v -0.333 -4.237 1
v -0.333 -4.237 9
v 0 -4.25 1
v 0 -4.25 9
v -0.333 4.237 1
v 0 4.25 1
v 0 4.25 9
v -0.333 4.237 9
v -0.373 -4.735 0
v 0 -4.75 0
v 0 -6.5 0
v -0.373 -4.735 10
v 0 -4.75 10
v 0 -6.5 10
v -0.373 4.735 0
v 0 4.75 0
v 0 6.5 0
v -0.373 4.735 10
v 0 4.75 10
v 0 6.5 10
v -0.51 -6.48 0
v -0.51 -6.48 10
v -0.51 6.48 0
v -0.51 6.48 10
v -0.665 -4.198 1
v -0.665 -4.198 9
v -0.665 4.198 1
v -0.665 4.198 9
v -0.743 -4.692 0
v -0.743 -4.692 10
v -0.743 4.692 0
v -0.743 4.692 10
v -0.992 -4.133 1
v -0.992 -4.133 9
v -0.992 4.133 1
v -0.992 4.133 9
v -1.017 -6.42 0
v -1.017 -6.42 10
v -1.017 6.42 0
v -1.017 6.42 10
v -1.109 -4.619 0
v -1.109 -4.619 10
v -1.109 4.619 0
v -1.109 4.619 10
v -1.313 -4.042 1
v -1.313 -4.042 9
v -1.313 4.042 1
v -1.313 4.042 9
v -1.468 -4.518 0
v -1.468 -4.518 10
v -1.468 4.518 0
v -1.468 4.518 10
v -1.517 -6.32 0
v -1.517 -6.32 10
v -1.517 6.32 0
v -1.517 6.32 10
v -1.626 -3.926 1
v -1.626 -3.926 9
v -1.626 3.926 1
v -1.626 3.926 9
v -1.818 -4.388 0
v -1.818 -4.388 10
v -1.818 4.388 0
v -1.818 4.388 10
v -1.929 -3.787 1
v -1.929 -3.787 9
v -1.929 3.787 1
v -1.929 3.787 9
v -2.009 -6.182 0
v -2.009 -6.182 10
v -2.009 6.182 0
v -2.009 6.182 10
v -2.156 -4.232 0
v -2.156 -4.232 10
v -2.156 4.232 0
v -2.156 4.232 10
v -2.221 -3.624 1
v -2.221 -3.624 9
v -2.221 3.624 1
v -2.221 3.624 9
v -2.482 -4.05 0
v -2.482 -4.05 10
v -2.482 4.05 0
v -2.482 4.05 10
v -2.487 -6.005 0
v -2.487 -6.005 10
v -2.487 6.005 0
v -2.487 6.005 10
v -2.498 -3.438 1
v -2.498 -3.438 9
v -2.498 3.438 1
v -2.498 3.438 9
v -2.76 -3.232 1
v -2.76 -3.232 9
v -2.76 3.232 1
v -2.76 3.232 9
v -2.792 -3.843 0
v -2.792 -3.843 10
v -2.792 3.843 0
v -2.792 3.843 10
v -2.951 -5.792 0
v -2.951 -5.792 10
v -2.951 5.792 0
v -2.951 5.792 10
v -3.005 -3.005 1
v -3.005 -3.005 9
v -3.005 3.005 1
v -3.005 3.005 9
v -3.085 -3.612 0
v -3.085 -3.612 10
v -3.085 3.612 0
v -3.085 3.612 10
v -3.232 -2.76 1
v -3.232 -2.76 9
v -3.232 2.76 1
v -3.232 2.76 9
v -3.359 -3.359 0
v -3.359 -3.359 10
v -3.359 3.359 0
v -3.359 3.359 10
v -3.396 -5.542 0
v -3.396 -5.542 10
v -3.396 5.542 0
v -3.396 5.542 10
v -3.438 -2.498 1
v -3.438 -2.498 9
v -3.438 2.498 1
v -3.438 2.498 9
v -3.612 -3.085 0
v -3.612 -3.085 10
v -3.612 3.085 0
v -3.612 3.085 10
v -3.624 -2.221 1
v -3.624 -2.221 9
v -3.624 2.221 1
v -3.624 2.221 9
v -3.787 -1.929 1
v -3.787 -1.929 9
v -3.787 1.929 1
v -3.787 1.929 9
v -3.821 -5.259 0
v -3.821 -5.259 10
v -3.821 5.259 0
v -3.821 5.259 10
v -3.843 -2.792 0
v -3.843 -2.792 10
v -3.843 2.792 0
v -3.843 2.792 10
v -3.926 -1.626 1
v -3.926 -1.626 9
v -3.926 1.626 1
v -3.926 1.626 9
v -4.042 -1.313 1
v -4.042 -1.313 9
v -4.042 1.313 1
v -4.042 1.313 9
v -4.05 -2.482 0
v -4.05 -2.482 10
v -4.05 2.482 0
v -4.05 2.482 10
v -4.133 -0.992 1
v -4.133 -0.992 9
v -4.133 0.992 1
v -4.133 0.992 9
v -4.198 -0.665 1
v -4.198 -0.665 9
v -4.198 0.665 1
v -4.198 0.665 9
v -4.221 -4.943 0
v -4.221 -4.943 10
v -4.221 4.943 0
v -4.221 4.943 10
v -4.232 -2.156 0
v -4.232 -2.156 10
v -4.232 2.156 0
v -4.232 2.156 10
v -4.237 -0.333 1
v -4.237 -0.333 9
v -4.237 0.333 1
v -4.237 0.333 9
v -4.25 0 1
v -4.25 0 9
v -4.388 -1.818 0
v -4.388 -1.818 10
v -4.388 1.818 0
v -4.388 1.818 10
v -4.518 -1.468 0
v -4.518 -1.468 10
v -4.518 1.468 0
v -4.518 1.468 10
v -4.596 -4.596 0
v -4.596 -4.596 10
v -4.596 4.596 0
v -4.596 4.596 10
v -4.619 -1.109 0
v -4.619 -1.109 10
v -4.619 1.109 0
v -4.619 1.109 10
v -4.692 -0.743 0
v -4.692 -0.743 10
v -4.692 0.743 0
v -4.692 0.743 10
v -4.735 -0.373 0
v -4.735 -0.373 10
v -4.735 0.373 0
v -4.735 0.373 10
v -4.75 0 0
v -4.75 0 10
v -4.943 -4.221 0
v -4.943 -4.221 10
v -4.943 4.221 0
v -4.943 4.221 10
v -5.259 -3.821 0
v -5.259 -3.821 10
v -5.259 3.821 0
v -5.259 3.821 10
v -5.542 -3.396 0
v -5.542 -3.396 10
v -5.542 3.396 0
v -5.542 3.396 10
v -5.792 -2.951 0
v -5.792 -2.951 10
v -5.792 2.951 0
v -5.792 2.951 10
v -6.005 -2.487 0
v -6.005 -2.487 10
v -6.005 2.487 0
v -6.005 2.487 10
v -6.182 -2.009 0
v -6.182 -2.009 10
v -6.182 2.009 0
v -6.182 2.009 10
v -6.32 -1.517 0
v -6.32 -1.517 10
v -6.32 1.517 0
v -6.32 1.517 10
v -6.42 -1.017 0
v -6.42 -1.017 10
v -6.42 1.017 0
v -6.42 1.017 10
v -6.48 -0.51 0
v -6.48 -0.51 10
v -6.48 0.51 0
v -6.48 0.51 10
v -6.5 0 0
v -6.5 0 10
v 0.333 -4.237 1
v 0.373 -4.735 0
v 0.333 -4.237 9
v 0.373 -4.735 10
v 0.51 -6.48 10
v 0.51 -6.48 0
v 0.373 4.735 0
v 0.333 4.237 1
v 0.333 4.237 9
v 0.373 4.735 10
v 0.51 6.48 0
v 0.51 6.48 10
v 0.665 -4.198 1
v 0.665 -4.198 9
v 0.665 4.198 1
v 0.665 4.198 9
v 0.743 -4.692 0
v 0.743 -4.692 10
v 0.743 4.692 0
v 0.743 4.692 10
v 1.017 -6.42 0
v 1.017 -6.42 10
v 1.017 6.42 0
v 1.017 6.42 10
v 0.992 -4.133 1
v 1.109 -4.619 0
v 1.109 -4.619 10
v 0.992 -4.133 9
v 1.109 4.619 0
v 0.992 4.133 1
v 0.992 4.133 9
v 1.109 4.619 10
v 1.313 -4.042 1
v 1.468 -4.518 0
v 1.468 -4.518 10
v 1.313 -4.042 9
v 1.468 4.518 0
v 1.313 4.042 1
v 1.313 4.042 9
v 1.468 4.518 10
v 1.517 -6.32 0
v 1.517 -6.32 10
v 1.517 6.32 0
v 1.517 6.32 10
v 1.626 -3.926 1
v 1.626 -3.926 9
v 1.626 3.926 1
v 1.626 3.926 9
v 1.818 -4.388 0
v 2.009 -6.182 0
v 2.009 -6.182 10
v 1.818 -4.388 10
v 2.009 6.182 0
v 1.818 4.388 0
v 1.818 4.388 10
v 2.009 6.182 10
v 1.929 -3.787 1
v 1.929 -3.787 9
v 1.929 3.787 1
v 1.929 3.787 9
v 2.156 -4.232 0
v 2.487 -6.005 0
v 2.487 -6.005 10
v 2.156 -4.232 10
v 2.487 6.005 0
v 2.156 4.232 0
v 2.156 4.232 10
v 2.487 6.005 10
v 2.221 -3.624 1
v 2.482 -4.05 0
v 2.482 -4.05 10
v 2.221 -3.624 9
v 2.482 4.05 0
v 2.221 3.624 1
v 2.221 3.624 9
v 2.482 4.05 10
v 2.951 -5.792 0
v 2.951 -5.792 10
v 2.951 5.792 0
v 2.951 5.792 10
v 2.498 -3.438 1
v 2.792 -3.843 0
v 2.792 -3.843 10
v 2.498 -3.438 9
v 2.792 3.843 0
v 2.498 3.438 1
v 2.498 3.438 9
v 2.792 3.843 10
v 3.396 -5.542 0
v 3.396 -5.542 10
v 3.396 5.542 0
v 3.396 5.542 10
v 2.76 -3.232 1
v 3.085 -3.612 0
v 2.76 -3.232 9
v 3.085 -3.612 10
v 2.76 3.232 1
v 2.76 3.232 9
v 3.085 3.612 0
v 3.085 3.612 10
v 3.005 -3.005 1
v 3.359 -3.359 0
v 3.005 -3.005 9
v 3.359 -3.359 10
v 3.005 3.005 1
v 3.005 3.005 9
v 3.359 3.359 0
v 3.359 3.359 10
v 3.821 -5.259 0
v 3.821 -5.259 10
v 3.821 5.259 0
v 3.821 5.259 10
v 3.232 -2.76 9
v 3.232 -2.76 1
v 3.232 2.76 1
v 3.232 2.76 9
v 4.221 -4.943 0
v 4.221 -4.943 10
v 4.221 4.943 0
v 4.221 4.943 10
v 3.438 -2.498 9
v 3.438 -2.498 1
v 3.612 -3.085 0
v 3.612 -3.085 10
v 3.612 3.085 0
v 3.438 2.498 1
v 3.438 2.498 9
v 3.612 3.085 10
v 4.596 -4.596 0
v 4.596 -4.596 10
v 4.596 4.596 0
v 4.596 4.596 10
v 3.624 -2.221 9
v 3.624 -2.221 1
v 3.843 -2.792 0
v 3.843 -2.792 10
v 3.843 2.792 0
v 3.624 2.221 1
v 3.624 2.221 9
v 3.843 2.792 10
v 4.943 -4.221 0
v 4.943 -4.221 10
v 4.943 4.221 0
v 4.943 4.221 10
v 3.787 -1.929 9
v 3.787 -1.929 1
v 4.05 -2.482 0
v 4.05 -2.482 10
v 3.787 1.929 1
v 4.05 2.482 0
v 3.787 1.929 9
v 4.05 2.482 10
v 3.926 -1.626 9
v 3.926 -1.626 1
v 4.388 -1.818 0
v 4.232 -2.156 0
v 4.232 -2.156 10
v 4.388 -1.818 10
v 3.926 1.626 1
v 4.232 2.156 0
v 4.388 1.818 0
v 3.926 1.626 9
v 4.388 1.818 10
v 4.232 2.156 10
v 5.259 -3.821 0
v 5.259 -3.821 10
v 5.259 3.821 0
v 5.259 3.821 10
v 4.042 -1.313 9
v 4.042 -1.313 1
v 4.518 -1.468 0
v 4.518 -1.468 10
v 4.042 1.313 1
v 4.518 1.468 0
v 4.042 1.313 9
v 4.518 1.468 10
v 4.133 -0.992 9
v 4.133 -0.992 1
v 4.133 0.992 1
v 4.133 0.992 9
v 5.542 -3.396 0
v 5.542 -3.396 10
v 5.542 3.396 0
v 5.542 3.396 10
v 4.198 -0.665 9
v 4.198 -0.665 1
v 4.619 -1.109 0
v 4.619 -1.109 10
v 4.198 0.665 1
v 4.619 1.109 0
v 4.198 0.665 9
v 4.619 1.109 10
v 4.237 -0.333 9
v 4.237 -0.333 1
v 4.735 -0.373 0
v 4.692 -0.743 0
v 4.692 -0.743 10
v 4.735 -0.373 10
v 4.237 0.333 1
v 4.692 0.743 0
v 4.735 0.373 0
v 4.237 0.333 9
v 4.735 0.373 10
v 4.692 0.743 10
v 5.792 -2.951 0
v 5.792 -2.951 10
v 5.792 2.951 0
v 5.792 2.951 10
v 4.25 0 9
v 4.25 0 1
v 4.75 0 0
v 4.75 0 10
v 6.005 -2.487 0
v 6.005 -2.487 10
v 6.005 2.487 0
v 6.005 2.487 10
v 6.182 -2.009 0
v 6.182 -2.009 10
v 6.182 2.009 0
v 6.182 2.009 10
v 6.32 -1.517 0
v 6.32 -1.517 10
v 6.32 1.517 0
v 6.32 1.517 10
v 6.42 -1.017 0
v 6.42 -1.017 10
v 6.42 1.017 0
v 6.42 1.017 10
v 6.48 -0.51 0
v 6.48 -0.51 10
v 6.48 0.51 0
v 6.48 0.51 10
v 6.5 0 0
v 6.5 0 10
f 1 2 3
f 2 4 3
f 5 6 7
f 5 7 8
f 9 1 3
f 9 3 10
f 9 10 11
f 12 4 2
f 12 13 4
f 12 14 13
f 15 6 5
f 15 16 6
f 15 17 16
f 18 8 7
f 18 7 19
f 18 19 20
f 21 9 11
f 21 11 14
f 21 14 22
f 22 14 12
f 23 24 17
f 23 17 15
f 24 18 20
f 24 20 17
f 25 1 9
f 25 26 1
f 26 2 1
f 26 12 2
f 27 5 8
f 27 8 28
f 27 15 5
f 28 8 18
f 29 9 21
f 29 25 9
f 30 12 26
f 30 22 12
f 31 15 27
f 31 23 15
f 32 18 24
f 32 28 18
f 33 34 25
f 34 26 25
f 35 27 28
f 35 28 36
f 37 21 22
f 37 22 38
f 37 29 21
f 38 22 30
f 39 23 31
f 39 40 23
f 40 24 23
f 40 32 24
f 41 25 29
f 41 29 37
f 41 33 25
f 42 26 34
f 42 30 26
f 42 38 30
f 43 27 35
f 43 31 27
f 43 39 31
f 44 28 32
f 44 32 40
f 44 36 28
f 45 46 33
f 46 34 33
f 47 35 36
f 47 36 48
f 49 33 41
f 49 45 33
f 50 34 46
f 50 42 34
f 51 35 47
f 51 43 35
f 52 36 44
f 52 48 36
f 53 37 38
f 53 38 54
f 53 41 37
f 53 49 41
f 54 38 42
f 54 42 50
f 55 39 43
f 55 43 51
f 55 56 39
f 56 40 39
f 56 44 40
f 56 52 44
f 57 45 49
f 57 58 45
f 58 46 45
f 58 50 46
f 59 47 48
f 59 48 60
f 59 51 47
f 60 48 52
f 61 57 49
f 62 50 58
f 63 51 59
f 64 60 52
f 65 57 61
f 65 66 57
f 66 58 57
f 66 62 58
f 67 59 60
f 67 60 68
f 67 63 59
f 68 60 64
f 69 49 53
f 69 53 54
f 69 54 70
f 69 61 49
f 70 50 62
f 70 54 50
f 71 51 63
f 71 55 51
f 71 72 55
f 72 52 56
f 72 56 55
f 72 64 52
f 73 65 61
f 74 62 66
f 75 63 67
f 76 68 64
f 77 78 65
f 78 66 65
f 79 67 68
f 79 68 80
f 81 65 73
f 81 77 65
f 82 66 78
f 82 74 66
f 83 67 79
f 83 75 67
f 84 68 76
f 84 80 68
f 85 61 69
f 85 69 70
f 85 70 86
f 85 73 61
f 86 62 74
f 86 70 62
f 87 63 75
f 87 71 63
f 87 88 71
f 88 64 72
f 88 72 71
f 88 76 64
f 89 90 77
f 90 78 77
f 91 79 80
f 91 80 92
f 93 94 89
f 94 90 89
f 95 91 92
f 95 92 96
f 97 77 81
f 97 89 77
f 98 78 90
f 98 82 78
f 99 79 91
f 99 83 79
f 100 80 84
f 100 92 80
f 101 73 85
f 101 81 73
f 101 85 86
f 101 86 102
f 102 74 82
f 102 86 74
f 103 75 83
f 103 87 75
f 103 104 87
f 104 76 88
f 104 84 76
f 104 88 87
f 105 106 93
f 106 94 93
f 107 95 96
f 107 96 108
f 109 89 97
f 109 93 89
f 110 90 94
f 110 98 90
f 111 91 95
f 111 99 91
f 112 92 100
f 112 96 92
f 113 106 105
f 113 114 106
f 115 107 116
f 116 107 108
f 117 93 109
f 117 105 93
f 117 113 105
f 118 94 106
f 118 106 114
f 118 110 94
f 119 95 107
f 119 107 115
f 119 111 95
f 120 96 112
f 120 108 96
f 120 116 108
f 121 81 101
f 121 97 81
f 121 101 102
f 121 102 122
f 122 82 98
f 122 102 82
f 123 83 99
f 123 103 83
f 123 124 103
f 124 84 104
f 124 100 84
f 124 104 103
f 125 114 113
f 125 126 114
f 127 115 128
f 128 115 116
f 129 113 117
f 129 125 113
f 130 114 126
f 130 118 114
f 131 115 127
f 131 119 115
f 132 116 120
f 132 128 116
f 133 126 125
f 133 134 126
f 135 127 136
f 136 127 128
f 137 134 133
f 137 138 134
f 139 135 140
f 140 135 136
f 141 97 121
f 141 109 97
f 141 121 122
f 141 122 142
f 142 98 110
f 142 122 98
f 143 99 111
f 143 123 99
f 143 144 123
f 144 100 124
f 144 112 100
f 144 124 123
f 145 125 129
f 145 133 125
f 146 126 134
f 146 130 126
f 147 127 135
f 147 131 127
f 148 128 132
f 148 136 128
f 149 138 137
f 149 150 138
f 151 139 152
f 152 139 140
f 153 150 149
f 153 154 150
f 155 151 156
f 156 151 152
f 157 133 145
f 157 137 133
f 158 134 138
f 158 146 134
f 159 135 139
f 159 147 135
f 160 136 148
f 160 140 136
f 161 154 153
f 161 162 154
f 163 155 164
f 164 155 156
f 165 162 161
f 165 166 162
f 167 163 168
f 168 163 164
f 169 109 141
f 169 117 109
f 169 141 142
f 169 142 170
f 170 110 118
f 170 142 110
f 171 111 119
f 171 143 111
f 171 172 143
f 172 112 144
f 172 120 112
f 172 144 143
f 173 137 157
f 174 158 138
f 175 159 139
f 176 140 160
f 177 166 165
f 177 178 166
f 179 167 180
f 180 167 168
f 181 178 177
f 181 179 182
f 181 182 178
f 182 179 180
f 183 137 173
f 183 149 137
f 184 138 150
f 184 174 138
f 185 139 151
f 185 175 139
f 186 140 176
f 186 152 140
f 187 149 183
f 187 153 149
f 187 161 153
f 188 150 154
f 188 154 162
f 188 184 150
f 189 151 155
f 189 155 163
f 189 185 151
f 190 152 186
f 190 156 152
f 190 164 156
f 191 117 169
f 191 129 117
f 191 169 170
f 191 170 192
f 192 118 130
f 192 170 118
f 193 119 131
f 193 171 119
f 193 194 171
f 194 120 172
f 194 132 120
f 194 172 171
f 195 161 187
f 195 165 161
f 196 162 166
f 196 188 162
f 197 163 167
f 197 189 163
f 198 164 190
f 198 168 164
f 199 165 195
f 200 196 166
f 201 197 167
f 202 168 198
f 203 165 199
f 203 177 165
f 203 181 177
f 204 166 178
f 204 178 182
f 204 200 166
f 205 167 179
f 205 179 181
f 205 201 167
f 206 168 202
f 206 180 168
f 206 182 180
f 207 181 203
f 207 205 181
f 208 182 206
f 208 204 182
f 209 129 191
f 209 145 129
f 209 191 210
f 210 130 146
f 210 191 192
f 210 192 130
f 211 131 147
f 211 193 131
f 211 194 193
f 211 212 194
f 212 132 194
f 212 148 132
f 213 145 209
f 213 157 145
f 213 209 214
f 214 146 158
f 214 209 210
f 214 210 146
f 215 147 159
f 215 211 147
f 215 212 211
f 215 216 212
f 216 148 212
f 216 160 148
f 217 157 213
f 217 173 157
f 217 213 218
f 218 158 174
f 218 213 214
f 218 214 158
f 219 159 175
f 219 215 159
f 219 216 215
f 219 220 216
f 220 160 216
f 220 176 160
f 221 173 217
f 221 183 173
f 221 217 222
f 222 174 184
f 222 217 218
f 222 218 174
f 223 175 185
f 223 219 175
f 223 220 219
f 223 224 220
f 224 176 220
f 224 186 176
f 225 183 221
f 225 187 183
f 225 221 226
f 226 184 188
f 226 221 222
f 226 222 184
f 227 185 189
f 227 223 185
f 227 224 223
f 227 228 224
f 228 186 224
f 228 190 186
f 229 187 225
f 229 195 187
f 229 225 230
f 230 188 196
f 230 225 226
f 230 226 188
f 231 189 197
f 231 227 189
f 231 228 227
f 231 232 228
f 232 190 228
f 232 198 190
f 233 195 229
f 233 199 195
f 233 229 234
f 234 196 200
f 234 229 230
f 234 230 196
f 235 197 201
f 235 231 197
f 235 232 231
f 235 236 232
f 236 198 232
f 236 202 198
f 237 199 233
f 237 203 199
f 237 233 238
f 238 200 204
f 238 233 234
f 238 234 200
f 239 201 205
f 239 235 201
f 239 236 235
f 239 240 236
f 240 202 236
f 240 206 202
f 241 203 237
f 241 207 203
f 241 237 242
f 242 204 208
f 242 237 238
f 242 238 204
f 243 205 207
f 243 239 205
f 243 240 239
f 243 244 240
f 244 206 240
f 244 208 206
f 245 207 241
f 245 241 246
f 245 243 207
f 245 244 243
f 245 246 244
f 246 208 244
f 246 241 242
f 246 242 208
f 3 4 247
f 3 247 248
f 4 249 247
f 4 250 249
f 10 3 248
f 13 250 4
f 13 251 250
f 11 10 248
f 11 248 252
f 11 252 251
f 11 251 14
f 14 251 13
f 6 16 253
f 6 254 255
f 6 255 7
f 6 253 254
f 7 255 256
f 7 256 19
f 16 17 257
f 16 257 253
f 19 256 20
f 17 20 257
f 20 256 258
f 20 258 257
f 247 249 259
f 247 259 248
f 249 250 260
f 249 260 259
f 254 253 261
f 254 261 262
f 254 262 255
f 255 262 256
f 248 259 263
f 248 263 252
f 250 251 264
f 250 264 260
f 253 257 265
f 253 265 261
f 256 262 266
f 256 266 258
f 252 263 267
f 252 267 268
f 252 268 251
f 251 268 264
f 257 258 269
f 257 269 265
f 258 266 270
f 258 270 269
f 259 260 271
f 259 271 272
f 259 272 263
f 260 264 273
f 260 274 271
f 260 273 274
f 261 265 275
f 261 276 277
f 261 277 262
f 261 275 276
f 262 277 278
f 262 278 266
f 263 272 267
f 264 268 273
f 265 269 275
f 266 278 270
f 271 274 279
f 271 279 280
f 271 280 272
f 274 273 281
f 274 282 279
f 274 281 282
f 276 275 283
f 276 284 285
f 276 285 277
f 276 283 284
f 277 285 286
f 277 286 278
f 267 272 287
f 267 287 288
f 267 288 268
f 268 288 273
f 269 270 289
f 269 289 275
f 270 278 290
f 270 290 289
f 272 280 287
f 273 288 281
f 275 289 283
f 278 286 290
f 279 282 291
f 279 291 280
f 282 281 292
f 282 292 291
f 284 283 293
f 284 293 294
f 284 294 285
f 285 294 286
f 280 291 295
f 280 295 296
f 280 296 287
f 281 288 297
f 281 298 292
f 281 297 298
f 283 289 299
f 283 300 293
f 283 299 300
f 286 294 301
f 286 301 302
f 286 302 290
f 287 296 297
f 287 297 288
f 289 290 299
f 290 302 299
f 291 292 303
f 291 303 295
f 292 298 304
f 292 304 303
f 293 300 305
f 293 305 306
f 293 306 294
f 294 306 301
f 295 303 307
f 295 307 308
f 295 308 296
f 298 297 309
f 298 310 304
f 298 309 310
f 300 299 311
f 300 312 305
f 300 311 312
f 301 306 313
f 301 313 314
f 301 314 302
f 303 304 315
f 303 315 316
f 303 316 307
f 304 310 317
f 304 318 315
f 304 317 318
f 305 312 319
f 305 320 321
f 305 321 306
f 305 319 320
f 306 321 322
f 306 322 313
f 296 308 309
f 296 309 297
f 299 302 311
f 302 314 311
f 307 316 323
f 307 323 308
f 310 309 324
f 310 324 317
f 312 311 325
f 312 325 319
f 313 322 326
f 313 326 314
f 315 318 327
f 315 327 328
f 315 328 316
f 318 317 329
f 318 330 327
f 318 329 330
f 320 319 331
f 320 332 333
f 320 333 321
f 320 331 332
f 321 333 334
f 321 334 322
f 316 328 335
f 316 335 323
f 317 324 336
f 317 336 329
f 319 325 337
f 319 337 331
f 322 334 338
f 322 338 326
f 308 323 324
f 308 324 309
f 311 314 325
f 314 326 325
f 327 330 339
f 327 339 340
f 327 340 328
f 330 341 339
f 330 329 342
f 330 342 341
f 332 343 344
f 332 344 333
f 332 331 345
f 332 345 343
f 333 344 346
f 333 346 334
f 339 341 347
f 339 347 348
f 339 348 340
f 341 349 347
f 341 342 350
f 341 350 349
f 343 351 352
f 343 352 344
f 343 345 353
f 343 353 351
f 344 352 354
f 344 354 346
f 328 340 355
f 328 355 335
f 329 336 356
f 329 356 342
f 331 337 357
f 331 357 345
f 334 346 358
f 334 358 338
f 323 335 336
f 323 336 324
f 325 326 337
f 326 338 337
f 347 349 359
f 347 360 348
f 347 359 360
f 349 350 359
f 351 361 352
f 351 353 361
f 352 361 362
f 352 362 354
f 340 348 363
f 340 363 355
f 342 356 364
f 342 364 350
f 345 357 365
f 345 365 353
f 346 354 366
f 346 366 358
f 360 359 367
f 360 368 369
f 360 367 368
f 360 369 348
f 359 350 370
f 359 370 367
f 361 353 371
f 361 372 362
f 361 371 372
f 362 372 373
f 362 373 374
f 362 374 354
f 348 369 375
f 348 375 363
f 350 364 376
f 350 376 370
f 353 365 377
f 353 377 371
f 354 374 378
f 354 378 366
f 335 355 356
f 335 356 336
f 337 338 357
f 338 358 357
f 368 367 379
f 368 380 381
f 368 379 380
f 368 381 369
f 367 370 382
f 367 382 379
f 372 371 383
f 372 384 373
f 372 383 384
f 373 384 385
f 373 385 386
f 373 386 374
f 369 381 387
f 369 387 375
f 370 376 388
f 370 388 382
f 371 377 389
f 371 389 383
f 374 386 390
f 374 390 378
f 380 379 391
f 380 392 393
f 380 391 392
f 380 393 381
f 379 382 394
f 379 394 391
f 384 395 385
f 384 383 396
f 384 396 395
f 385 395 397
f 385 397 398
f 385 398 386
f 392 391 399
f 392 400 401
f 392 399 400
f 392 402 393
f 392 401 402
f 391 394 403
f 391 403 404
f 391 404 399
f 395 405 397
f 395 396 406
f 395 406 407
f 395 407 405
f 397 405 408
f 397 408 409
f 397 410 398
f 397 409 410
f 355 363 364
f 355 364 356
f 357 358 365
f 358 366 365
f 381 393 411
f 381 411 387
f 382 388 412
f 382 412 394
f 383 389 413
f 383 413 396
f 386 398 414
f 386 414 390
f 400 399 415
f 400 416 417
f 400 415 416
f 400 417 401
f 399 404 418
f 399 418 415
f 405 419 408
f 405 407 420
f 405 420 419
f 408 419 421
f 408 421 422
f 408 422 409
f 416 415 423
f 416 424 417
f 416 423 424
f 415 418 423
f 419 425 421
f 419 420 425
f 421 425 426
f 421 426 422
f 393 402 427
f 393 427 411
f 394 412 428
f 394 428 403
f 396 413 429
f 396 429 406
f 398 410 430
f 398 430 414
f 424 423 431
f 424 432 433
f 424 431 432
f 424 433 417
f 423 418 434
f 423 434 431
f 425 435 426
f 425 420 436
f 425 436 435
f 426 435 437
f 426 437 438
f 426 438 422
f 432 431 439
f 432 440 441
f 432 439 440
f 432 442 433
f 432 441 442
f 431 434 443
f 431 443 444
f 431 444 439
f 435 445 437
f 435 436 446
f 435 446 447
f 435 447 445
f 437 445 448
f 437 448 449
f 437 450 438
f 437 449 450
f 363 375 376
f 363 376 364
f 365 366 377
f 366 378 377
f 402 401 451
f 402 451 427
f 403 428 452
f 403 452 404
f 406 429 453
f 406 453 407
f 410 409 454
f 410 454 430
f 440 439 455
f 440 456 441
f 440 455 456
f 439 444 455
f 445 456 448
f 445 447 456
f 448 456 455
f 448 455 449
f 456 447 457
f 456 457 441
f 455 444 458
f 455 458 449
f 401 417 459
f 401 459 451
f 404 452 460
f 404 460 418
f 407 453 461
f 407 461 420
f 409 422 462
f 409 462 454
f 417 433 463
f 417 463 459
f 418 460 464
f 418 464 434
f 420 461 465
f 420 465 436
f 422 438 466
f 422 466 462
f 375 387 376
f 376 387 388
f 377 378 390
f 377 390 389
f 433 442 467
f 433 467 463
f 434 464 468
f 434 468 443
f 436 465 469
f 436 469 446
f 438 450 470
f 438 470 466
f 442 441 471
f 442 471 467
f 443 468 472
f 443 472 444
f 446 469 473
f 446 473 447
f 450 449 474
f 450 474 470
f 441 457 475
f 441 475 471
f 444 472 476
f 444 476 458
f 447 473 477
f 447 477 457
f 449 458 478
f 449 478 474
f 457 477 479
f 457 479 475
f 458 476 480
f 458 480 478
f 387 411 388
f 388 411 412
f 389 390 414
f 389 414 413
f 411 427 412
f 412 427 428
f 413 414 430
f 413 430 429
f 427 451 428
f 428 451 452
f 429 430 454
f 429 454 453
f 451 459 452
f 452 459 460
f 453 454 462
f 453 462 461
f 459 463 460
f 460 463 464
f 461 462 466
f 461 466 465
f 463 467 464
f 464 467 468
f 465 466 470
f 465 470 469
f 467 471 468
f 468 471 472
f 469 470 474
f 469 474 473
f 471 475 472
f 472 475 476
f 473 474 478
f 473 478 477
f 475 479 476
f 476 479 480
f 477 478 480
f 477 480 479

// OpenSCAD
// Rozperka lozesik v dilu predniho podvozku

include <../parameters.scad>
$fn = $preview? 20:80;

module 888_2020() {
	height = front_undercarriage_bearing_distance;

	difference(){
		cylinder(d = 13, h = height);
		cylinder(d = M8_screw_diameter, h = height);
		cylinder(d1 = M8_screw_diameter+1, d2=M8_screw_diameter, h = 1);
		translate([0, 0, height-1])
		cylinder(d2 = M8_screw_diameter+1, d1=M8_screw_diameter, h = 1);
	}
}


888_2020();
